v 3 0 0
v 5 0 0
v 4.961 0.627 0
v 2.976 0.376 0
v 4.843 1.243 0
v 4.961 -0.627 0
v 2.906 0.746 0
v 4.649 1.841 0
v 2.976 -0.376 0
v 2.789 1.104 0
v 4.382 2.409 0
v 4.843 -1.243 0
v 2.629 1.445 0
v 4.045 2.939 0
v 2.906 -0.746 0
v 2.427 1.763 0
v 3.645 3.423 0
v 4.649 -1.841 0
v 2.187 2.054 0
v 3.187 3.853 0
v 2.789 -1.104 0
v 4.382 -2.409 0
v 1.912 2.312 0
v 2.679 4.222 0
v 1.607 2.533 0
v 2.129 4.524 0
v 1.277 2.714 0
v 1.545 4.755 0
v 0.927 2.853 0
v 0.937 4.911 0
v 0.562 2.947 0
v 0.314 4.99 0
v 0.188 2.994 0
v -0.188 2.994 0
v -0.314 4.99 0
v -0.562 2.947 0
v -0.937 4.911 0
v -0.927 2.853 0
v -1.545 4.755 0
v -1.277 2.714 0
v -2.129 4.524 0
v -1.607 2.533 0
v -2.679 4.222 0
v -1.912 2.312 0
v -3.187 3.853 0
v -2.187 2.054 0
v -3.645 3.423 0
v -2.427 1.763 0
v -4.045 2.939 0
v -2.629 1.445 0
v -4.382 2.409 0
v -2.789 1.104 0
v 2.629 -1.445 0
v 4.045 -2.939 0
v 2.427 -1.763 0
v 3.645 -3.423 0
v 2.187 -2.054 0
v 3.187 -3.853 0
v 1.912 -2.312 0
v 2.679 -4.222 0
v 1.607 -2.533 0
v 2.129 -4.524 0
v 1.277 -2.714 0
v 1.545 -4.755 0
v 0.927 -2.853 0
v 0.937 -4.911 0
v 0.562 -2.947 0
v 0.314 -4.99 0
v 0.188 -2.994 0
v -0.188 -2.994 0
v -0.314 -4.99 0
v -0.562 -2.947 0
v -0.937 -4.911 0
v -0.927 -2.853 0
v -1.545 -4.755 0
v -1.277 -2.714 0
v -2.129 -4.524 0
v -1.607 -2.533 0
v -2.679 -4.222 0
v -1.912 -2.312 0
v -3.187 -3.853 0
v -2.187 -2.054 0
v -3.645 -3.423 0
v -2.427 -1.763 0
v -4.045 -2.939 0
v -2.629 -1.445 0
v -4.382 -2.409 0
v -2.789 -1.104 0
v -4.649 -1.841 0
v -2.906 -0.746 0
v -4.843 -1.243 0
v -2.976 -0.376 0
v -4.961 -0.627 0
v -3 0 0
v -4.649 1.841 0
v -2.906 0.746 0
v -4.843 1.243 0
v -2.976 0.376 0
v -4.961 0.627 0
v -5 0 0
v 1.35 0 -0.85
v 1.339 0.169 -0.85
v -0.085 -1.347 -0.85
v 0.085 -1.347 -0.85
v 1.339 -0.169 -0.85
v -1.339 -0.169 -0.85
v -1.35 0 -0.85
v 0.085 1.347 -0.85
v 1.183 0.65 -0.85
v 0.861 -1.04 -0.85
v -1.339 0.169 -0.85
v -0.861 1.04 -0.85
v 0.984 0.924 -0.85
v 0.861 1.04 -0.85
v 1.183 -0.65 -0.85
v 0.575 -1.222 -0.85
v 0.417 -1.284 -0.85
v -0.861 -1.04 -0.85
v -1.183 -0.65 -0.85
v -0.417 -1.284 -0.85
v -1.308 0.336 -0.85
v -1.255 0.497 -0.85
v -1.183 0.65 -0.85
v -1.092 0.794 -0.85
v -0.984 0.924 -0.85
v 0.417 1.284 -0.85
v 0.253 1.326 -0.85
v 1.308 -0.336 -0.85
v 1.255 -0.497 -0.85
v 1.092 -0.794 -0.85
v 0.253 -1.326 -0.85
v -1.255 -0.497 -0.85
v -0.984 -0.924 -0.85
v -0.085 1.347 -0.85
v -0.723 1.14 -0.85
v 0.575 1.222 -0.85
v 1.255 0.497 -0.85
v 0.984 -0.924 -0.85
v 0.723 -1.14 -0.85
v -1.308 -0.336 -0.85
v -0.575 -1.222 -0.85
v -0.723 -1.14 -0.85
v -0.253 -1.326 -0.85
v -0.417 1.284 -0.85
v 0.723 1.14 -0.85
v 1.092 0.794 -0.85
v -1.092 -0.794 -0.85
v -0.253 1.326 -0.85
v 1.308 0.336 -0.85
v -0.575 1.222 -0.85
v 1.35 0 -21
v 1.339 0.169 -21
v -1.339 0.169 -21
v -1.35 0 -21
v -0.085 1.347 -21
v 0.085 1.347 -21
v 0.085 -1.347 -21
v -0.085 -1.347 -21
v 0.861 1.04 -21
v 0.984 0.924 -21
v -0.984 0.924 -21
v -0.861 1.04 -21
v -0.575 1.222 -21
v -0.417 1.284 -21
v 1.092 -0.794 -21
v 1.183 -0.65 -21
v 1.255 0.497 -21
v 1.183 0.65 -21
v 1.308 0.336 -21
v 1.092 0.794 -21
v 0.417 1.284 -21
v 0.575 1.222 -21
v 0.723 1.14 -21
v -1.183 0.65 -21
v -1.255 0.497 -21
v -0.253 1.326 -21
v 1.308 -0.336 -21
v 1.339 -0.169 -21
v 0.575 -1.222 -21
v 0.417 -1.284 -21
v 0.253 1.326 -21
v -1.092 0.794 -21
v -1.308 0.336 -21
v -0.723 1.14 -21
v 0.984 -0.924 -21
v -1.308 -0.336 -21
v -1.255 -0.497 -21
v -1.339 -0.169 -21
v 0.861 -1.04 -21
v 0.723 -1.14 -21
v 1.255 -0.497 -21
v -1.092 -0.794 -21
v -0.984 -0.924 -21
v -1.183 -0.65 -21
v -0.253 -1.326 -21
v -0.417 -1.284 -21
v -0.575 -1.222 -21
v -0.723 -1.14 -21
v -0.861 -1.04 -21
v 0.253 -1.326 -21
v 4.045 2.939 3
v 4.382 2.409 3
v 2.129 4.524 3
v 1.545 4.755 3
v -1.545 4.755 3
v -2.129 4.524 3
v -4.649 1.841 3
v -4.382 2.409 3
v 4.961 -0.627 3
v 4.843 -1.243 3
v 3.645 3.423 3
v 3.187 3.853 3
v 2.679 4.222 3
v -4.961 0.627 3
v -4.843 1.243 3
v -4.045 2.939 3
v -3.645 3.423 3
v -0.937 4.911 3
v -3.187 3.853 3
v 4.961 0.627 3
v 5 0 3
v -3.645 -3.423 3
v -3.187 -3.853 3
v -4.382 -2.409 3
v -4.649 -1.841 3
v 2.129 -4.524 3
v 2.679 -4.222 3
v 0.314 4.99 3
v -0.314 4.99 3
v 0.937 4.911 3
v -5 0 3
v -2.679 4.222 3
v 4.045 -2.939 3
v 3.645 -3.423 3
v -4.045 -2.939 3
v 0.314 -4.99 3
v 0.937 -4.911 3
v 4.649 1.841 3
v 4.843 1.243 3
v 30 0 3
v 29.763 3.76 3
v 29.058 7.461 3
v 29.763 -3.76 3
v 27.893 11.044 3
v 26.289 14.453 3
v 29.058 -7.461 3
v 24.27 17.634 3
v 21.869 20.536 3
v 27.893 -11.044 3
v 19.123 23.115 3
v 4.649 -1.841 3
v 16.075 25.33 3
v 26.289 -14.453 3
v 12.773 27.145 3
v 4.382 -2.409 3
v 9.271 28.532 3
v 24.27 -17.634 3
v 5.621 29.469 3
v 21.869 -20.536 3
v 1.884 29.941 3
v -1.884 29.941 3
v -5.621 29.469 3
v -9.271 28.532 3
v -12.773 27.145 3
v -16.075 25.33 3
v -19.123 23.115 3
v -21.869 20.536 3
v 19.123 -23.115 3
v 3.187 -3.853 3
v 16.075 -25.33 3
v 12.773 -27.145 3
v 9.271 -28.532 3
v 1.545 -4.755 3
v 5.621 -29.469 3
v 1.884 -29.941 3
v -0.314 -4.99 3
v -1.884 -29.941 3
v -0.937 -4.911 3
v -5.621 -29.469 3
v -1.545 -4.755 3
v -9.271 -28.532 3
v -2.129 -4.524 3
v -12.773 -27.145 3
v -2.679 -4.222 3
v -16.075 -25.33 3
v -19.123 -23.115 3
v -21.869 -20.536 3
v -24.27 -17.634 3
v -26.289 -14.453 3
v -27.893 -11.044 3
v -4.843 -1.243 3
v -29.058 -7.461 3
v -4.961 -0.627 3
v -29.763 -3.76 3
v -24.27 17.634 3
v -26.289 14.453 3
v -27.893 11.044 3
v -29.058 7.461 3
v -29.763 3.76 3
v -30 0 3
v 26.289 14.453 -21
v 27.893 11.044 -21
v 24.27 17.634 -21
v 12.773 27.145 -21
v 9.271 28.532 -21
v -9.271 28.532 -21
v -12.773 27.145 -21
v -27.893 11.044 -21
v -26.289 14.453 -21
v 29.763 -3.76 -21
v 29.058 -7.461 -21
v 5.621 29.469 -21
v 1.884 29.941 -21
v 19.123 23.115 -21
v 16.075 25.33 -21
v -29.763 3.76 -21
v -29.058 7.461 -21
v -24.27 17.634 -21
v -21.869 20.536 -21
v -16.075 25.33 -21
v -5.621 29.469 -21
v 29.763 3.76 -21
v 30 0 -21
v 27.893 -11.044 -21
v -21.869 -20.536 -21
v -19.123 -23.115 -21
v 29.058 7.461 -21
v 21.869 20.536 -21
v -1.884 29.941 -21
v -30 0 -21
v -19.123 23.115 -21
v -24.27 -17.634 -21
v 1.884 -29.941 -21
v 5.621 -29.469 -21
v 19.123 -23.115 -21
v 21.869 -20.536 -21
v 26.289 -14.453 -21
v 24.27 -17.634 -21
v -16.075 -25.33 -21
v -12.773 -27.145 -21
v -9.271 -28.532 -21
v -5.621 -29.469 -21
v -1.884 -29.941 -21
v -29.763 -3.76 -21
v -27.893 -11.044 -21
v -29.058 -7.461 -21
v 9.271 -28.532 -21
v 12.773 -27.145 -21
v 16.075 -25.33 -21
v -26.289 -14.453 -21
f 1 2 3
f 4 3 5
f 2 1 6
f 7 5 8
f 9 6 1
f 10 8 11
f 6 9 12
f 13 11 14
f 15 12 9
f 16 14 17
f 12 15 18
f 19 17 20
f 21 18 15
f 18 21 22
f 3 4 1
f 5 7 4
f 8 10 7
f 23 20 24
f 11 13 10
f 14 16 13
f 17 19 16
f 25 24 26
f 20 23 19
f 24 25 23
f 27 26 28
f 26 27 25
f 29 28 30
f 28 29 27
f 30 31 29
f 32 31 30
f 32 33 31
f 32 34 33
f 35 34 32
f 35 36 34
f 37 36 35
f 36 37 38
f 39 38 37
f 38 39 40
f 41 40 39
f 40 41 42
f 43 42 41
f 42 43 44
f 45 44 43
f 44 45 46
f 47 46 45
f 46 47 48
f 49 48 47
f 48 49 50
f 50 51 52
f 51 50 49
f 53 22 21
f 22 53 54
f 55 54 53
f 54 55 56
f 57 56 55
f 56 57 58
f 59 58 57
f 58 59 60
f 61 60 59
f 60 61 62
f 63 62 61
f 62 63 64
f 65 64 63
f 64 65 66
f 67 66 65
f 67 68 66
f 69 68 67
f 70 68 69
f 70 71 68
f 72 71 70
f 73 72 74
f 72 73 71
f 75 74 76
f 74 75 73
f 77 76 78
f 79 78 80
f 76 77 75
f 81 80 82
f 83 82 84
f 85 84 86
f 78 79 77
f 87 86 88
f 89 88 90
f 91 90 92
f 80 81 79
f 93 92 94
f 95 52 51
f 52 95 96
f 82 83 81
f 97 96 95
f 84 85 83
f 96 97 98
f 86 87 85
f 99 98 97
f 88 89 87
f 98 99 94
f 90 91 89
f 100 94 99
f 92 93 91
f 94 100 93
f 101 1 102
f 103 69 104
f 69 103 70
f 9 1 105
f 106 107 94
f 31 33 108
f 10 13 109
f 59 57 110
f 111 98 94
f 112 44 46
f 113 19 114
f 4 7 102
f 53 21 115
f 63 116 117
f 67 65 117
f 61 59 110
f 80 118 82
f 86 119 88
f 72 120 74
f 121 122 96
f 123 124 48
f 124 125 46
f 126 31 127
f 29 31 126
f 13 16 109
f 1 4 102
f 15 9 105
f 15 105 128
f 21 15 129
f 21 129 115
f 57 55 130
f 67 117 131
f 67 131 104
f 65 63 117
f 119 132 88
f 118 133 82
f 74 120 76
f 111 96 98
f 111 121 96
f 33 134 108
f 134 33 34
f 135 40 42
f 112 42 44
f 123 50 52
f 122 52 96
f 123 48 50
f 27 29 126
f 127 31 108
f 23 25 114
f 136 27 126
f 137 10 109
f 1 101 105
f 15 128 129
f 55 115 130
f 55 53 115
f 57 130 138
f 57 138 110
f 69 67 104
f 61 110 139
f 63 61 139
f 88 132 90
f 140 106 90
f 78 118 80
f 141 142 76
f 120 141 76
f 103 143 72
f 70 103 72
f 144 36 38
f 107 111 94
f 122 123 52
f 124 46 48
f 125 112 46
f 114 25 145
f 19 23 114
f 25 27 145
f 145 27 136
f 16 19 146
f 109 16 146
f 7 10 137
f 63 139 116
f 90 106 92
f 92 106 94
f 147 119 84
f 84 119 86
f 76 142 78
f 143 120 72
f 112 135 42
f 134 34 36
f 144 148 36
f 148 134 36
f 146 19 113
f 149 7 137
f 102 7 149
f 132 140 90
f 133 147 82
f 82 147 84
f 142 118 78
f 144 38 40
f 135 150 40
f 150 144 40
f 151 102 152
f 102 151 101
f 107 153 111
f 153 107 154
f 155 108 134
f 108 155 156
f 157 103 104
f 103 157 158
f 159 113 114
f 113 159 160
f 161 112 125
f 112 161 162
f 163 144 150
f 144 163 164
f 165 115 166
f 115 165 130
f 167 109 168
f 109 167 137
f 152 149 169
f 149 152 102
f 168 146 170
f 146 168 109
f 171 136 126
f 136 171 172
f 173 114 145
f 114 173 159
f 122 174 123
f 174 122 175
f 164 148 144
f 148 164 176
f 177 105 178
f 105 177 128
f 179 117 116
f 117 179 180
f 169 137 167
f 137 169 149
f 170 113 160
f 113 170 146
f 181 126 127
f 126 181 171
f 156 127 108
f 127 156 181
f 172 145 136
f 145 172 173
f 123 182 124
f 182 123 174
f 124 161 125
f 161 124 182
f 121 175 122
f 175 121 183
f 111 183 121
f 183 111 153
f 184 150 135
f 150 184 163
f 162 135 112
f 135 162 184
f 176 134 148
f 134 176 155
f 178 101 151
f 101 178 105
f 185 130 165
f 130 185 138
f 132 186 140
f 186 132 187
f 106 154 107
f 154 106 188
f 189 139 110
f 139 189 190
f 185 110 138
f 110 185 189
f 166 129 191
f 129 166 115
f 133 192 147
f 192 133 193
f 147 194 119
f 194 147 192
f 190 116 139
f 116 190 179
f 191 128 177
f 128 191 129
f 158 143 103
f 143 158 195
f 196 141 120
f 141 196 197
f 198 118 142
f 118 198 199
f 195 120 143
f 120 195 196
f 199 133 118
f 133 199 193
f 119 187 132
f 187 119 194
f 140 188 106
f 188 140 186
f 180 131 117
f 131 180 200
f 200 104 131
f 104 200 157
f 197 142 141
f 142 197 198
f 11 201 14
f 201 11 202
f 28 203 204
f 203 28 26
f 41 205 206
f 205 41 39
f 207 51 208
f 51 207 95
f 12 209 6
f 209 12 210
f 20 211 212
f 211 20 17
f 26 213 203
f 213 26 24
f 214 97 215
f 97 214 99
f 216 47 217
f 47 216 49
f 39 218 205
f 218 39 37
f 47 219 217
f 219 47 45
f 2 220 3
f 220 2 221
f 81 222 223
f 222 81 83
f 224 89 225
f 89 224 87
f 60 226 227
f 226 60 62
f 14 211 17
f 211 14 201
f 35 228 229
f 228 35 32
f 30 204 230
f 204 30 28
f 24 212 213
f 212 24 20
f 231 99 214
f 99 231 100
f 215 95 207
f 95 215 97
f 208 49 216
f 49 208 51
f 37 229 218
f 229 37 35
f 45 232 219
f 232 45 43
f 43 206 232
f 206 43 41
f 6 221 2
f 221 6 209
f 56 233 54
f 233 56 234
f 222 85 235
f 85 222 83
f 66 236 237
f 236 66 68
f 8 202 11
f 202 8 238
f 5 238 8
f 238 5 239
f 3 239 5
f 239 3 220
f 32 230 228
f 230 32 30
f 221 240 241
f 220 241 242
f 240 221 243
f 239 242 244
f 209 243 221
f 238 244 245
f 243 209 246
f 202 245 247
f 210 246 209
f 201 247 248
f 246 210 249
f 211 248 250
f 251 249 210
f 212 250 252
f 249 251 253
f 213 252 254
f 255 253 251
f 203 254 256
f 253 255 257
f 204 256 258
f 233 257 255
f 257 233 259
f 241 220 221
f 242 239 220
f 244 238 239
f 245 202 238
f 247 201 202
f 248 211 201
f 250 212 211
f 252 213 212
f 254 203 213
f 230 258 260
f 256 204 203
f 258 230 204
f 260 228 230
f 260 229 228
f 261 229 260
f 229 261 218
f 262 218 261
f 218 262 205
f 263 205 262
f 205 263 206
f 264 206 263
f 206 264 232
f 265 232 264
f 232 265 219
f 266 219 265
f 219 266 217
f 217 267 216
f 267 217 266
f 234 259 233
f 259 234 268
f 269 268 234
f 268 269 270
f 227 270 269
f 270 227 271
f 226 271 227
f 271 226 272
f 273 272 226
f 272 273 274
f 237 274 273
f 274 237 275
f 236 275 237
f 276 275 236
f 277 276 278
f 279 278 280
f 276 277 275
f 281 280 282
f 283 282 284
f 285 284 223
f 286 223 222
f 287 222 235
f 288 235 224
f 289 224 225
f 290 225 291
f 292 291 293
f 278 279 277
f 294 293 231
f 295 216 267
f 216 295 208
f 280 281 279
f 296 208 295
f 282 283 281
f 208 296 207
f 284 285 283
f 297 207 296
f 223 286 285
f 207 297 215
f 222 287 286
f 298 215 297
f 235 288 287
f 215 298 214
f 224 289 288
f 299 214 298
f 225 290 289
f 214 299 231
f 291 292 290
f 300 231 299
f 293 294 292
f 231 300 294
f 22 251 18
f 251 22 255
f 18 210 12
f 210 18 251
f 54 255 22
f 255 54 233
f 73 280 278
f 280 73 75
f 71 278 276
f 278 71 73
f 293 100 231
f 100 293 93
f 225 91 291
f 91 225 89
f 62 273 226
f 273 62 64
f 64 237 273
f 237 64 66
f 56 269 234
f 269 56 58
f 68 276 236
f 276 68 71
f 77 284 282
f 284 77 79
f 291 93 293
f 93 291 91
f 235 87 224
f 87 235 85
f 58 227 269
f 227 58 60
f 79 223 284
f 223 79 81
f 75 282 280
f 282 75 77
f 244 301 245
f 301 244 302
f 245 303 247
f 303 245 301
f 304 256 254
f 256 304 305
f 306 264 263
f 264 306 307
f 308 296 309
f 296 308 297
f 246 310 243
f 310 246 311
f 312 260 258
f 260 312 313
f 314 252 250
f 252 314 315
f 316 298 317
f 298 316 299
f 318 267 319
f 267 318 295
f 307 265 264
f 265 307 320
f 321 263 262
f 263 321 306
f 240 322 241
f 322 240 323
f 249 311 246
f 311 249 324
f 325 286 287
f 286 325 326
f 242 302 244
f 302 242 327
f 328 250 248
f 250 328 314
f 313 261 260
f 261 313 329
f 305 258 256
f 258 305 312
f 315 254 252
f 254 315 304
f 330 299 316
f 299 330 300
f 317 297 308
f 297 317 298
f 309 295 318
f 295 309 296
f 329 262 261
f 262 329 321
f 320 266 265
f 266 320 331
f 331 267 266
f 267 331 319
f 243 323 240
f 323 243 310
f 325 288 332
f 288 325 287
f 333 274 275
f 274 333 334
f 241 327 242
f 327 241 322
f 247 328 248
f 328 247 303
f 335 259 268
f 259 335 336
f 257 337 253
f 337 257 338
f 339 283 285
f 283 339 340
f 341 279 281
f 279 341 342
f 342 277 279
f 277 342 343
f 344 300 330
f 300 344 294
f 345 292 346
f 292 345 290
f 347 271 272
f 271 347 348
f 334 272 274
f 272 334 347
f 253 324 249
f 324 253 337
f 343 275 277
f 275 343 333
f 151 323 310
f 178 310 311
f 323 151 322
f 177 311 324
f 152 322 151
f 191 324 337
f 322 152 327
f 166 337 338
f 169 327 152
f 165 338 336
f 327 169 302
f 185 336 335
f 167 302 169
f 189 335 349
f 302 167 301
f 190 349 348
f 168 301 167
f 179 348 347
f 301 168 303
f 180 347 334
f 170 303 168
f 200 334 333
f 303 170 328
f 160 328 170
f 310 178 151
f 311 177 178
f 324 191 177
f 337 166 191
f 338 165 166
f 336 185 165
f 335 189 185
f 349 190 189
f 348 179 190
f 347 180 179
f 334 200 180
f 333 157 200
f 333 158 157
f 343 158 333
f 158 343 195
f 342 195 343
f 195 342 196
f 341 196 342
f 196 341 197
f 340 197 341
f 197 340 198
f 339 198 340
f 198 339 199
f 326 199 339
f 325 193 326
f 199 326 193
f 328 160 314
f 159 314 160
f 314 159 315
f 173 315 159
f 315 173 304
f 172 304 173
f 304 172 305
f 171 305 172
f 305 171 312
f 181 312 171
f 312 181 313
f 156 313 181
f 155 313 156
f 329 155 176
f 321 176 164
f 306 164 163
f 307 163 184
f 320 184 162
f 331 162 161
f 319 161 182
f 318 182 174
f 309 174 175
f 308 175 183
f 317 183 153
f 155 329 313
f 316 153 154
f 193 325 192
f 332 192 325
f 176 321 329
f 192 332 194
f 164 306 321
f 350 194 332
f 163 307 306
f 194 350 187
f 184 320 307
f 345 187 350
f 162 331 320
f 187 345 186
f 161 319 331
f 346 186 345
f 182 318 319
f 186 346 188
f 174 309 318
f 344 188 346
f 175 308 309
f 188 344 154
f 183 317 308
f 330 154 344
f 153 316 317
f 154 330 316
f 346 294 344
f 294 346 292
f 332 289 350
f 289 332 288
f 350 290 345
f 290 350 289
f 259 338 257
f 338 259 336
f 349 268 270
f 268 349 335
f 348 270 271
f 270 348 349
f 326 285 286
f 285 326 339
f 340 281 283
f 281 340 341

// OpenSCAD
$fn = 50;


difference() {
	union() {
		translate(v = [0, 0, -21.0000000000]) {
			cylinder(h = 24, r = 30.0000000000);
		}
	}
	union() {
		translate(v = [0, 0, 0]) {
			rotate(a = [0, 0, 0]) {
				difference() {
					union() {
						translate(v = [0, 0, -24.0000000000]) {
							cylinder(h = 24, r = 1.0000000000);
						}
						translate(v = [0, 0, -0.8500000000]) {
							cylinder(h = 0.8500000000, r1 = 1.3500000000, r2 = 3.0000000000);
						}
						translate(v = [0, 0, -24.0000000000]) {
							cylinder(h = 24, r = 1.3500000000);
						}
						translate(v = [0, 0, -24.0000000000]) {
							cylinder(h = 24, r = 1.0000000000);
						}
					}
					union();
				}
			}
		}
		#cylinder(h = 3, r = 5.0000000000);
	}
}
